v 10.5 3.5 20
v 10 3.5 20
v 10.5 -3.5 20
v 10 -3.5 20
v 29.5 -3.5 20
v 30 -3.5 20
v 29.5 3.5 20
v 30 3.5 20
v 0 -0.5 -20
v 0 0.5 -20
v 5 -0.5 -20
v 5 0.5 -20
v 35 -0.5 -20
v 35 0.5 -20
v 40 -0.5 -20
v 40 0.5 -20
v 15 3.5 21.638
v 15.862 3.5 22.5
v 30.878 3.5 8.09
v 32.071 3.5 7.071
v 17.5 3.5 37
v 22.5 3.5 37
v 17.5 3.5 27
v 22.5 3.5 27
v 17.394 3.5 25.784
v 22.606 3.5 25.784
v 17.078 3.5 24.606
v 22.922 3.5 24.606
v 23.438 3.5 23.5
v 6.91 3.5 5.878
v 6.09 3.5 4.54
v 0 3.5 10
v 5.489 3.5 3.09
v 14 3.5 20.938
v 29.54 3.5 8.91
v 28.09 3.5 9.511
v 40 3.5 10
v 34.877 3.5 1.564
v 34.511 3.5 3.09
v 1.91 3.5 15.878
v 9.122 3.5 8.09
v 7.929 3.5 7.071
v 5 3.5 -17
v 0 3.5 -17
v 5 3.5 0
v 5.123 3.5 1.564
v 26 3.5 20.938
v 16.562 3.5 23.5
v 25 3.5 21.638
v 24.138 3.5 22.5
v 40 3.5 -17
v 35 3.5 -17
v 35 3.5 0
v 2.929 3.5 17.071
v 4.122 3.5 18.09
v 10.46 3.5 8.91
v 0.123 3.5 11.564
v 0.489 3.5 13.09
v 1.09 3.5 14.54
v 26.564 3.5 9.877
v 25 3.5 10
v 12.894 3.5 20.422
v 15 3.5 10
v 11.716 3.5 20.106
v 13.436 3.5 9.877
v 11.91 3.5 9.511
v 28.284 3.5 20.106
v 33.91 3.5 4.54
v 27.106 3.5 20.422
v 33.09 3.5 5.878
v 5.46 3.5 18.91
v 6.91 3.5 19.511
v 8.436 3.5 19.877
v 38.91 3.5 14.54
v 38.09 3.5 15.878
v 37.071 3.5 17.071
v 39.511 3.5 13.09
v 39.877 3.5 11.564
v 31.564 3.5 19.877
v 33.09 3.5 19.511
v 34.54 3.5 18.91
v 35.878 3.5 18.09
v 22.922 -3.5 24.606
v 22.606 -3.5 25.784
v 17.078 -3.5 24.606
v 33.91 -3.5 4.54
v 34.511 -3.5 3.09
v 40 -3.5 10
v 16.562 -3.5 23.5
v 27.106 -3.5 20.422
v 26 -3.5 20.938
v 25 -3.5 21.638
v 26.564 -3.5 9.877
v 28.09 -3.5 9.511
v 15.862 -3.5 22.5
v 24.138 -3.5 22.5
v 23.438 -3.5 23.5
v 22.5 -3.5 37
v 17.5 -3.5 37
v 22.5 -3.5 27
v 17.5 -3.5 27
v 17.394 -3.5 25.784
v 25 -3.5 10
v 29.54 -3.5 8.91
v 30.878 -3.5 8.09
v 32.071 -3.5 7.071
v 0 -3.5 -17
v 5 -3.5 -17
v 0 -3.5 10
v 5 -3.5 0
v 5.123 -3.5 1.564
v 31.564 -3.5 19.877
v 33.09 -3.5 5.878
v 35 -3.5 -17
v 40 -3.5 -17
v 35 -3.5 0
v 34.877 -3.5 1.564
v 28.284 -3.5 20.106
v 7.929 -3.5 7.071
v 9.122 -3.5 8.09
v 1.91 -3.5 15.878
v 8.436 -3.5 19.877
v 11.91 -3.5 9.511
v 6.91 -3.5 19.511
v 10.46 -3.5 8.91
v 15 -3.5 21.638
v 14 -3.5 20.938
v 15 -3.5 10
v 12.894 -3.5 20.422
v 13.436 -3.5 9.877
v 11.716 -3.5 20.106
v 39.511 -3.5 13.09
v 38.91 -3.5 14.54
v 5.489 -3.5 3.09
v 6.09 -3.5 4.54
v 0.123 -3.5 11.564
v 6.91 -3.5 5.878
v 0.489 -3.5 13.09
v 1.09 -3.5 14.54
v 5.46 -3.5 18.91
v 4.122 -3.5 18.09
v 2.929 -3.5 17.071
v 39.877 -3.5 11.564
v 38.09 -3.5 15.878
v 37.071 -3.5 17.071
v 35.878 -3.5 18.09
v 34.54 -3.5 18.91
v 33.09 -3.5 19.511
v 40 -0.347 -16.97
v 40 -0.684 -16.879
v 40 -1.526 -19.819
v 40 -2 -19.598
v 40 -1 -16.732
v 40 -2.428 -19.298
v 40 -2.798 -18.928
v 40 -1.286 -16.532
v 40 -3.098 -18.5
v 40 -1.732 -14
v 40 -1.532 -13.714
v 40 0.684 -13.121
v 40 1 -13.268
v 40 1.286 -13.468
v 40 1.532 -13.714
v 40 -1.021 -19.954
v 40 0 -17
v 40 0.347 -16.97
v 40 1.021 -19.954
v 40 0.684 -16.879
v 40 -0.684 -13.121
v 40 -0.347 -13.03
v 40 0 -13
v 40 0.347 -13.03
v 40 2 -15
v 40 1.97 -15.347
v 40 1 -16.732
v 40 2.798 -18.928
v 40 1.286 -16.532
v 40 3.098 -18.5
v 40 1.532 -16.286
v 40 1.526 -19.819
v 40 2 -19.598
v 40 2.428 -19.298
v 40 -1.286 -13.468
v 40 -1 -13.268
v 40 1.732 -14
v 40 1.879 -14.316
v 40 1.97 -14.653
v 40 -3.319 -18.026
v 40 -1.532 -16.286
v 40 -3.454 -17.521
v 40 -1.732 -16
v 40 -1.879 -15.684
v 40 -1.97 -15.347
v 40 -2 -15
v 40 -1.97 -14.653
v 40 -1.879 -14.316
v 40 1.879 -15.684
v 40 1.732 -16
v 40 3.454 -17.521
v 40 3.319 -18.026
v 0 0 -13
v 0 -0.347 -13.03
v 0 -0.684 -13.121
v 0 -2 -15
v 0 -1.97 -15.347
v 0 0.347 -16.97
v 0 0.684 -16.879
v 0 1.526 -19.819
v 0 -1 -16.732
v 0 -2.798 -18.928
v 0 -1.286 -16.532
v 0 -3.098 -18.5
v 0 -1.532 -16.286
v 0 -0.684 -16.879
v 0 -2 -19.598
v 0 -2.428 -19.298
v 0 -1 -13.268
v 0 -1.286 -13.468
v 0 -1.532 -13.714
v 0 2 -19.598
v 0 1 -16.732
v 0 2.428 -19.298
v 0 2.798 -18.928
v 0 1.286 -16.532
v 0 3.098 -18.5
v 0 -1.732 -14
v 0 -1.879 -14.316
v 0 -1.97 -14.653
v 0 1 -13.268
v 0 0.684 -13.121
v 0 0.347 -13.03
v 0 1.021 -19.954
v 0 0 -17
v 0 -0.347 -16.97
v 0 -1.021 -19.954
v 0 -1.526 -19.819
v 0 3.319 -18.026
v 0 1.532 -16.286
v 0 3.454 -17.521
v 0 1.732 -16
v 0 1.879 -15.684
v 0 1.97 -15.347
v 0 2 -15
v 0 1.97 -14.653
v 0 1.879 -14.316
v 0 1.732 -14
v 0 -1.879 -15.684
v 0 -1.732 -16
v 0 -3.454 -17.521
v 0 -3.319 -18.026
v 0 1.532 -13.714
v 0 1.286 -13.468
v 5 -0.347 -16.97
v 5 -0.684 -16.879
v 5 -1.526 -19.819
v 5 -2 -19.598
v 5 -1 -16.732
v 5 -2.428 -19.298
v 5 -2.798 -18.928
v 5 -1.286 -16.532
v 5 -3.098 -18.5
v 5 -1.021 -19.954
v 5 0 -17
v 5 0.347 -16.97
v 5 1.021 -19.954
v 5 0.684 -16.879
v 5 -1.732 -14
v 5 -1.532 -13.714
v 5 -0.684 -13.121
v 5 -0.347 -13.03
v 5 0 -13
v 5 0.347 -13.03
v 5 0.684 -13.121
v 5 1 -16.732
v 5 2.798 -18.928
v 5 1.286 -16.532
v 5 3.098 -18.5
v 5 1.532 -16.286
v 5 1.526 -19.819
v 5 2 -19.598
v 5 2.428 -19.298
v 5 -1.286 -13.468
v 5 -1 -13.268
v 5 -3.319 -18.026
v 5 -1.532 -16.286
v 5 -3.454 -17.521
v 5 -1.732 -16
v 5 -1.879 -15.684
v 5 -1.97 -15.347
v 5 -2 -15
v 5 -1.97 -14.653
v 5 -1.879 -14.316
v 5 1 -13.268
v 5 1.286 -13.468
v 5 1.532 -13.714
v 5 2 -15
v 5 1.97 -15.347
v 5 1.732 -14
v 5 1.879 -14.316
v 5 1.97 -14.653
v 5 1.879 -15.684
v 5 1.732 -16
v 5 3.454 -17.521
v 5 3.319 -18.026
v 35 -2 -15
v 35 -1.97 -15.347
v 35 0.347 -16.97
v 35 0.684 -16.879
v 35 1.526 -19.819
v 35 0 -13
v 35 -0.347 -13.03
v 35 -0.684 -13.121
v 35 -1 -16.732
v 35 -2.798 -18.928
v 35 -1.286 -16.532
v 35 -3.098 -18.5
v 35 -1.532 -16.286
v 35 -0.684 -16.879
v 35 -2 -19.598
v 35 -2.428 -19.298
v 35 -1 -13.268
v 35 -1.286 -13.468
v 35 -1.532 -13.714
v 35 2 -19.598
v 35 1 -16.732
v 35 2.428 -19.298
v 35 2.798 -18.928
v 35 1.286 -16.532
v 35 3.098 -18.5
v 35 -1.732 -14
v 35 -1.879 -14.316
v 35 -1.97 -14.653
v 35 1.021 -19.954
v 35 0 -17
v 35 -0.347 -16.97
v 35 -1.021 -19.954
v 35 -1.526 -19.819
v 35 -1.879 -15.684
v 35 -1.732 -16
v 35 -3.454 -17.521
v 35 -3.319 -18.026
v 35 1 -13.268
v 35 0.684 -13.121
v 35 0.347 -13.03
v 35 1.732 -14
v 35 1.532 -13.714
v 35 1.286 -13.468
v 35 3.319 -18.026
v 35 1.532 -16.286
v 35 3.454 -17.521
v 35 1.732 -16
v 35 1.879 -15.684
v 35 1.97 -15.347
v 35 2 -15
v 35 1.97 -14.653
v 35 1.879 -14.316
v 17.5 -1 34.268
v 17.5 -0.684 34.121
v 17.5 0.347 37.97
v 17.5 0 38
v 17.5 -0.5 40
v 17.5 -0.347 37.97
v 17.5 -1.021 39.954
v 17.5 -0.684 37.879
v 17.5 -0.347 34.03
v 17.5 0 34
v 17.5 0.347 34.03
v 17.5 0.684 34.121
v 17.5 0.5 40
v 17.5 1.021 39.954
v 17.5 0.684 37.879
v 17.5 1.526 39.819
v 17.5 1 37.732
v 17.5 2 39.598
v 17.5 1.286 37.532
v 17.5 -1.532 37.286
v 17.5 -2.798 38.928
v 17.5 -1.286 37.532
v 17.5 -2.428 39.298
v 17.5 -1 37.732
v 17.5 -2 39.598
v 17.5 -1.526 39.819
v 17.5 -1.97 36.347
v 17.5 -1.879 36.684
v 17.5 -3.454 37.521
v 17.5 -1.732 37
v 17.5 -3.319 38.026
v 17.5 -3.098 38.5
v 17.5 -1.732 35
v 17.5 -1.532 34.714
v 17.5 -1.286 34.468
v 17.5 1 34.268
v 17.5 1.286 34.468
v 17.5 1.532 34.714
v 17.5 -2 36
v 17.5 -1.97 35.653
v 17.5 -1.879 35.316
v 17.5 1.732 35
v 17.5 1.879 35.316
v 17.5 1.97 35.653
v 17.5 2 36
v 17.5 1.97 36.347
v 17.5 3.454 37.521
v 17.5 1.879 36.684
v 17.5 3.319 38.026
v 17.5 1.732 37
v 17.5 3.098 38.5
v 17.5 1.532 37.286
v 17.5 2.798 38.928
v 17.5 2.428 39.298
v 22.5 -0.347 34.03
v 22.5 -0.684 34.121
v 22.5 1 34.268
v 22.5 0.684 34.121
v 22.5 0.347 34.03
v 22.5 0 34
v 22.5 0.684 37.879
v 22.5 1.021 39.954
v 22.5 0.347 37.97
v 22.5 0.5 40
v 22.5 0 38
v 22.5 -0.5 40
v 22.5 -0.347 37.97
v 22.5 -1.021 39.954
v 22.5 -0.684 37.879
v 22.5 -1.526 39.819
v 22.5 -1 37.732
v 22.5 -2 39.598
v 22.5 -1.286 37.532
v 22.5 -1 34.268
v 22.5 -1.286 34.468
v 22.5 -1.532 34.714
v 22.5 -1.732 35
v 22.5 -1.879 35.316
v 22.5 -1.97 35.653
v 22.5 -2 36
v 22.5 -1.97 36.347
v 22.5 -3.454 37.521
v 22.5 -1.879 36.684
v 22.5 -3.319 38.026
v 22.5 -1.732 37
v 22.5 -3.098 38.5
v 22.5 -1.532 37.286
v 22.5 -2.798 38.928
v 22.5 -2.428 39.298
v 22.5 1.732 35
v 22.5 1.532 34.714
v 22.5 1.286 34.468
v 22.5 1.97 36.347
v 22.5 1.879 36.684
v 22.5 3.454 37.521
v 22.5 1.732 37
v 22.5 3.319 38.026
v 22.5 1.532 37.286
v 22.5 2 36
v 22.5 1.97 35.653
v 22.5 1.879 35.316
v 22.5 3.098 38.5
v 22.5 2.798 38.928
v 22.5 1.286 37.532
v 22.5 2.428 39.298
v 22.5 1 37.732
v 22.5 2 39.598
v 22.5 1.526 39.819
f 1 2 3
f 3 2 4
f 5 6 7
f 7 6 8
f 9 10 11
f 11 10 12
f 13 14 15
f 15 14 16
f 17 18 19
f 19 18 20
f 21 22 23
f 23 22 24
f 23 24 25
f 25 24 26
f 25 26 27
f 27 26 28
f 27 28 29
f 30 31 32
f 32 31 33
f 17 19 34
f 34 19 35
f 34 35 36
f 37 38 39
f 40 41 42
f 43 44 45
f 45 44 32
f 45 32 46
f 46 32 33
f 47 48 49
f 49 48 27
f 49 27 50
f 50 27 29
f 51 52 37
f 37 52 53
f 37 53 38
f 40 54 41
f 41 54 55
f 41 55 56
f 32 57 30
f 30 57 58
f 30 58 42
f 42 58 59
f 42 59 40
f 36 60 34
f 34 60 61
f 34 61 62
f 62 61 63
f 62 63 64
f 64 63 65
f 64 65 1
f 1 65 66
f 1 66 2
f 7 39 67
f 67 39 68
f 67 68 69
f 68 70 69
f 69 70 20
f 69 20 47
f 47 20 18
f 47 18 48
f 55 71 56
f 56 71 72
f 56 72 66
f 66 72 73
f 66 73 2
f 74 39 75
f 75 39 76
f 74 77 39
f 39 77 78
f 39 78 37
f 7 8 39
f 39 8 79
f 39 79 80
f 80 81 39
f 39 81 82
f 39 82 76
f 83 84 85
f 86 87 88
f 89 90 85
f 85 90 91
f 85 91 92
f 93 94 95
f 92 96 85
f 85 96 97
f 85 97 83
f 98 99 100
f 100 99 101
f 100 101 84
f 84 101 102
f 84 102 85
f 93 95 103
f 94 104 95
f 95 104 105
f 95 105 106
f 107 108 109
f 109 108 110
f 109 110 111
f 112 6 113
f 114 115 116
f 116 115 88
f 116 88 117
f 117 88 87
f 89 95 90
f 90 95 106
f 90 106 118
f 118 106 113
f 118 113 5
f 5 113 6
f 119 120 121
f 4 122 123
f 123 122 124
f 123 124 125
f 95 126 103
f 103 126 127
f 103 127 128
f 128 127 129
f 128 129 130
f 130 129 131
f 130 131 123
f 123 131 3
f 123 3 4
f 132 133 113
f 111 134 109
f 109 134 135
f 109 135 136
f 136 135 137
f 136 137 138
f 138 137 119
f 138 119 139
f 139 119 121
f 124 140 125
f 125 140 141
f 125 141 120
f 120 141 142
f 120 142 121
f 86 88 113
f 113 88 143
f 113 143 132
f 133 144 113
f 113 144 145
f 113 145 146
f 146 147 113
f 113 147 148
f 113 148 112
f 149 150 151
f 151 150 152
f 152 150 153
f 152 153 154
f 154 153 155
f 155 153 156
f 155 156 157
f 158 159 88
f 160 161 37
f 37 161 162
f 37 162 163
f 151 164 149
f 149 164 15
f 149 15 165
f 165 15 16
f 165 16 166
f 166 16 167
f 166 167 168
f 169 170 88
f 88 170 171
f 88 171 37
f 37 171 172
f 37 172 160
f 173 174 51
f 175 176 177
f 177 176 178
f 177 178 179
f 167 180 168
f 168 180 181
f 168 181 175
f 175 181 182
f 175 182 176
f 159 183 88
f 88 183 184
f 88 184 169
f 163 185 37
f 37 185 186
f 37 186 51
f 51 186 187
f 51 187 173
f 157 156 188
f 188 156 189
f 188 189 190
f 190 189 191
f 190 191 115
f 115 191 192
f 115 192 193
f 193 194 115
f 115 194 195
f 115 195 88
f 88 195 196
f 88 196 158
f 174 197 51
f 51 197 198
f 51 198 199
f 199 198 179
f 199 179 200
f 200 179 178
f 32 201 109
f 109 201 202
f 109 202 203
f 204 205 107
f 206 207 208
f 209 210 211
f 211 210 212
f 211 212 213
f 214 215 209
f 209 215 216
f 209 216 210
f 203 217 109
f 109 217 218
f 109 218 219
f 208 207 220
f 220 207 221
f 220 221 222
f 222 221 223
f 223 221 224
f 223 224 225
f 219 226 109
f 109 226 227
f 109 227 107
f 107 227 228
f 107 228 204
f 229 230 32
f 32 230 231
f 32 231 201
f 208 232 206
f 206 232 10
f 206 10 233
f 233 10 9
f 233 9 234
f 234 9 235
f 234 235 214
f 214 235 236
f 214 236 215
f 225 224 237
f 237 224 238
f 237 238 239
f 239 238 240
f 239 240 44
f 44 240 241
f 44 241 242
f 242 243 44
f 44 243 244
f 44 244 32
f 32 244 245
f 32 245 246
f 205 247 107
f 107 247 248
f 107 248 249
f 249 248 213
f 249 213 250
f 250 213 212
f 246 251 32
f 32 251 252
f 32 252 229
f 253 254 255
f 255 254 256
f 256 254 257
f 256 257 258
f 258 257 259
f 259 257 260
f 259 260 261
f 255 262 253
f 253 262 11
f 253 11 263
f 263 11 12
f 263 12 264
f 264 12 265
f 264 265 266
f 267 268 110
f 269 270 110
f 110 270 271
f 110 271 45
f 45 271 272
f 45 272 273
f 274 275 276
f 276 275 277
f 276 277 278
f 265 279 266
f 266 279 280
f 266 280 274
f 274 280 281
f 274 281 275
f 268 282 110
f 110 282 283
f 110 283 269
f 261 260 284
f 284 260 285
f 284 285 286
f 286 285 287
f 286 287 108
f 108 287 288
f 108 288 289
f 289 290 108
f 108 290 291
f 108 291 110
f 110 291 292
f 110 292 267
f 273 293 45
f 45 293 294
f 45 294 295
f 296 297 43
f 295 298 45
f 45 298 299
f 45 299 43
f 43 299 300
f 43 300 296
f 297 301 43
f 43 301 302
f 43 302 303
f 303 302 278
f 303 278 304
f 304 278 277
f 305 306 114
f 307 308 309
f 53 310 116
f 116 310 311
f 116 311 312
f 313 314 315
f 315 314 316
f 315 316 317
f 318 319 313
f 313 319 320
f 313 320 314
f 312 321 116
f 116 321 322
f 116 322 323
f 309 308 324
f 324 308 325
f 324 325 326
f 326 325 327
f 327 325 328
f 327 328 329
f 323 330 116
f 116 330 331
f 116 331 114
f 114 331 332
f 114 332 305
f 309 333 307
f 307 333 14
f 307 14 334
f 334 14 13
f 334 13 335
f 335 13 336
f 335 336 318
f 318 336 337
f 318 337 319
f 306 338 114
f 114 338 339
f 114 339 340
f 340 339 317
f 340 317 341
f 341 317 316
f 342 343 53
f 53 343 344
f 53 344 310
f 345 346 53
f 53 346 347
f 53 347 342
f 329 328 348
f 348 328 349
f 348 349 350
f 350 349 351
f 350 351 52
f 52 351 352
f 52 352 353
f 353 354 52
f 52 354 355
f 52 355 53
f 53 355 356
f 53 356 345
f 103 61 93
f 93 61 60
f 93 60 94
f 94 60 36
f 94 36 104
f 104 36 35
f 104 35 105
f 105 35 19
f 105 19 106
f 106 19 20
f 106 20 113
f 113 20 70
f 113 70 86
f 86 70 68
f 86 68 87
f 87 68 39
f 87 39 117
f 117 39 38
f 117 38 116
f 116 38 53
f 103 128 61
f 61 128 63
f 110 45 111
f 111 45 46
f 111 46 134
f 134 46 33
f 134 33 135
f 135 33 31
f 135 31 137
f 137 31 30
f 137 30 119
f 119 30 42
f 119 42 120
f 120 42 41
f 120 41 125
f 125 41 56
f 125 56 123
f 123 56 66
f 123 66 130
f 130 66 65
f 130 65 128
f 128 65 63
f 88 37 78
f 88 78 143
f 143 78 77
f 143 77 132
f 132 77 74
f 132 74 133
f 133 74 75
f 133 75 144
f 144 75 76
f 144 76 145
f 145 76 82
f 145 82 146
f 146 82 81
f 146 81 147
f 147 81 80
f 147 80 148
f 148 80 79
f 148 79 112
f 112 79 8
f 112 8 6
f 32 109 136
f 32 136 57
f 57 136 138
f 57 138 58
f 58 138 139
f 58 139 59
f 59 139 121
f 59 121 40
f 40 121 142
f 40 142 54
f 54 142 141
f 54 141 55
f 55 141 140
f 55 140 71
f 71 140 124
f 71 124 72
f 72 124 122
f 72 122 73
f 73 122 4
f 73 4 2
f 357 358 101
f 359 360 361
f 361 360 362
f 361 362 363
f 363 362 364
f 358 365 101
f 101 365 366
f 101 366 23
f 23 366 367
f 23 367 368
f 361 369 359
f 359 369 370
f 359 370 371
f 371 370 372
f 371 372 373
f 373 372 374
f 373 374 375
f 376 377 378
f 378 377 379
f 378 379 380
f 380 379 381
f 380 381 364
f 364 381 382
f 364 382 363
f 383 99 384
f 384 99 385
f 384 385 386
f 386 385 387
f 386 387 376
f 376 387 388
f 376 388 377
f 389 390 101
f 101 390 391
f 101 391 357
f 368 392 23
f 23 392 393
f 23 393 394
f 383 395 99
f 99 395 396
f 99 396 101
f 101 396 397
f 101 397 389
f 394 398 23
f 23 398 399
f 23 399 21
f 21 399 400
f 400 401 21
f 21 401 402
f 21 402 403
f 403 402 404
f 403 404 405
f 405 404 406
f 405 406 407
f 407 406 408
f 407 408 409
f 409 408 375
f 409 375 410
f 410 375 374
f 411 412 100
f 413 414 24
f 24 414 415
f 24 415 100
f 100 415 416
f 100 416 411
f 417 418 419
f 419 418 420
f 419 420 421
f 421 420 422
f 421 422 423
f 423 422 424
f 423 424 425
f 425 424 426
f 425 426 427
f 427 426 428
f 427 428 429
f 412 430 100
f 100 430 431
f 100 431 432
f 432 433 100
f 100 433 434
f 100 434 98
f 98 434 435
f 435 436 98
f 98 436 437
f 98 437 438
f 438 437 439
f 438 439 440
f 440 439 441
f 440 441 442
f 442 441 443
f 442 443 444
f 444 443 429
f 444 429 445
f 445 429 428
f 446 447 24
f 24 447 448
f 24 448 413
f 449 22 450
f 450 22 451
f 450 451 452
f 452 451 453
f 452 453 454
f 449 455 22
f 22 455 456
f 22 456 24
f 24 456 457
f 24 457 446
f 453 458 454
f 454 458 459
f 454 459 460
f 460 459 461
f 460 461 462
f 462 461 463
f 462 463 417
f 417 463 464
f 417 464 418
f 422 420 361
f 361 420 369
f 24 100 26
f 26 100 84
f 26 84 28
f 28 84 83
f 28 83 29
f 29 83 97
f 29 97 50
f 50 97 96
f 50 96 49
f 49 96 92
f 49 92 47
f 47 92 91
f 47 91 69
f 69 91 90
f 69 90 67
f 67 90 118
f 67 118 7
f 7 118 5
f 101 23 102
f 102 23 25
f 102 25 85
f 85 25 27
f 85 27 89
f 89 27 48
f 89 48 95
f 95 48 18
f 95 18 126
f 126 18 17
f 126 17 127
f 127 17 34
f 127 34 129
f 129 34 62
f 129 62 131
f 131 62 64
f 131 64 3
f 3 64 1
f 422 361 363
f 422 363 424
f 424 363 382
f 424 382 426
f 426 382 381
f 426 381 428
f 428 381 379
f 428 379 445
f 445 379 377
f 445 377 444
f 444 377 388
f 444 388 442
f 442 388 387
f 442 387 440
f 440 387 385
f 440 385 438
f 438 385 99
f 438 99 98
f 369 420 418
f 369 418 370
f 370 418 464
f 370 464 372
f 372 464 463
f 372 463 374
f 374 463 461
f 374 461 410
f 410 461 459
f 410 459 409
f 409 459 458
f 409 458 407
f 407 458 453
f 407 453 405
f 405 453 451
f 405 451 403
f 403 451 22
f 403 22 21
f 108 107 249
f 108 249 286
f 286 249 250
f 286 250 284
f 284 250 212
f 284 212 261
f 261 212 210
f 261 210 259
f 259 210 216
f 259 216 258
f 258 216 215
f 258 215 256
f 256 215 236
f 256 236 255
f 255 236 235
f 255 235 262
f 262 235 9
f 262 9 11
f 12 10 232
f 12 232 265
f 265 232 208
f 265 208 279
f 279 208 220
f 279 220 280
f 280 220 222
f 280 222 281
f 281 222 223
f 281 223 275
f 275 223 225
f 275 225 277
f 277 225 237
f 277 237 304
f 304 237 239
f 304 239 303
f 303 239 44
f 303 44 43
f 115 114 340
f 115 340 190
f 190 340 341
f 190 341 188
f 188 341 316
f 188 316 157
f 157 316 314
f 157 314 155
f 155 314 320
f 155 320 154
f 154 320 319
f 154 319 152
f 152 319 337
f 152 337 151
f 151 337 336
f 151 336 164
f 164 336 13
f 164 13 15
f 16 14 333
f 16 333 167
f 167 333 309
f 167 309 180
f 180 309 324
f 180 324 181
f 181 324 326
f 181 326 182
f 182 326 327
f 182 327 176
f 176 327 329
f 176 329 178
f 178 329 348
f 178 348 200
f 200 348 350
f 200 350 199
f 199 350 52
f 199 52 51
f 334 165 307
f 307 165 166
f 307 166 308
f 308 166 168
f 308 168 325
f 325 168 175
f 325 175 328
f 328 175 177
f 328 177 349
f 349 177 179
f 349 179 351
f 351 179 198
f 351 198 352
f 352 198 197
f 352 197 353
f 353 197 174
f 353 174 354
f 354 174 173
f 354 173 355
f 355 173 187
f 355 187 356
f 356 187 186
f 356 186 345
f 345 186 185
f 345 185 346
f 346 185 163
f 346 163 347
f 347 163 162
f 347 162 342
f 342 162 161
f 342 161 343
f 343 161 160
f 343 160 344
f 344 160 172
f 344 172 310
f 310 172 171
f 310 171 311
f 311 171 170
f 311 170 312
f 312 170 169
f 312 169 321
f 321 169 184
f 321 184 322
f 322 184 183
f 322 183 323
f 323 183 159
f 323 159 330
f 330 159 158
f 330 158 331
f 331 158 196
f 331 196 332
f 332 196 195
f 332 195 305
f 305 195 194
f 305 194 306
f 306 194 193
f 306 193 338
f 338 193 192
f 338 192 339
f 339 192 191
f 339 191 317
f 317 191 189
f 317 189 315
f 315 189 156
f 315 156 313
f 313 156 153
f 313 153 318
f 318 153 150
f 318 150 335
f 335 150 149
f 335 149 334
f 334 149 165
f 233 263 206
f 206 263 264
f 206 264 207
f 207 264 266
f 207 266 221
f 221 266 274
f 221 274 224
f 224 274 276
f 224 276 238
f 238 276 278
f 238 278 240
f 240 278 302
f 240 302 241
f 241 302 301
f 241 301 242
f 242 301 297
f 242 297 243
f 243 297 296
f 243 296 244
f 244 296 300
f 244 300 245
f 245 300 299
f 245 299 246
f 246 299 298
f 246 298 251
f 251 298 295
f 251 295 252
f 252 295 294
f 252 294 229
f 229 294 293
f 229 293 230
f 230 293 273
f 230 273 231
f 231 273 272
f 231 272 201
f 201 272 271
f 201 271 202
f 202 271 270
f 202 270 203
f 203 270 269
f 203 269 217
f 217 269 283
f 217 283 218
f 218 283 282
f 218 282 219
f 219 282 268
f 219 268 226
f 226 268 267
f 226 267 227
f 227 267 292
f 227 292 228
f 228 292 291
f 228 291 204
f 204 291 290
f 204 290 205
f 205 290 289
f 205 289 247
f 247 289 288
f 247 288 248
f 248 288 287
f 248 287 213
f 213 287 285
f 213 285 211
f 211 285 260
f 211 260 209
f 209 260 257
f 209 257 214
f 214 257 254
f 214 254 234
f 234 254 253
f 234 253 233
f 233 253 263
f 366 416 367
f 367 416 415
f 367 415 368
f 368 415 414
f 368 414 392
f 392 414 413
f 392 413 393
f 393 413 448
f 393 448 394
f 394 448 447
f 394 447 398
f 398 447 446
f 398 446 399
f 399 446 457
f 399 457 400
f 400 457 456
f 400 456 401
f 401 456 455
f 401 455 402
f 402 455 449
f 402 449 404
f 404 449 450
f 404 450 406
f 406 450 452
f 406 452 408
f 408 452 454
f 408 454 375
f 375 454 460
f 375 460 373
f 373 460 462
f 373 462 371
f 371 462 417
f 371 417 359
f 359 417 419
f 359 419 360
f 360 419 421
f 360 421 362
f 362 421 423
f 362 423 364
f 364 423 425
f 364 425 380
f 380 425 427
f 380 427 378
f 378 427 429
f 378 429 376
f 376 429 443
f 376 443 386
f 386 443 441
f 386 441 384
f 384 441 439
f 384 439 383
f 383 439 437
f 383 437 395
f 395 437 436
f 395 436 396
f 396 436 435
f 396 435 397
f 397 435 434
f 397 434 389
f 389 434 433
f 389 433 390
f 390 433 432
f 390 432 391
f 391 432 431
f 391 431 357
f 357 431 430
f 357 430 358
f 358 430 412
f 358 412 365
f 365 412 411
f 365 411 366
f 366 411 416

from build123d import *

# Parameters (mm, degrees)
SKETCH1_W           = 40
SKETCH1_H           = 7
BOSS_EXTRUDE1_DEPTH = 40
CUT_EXTRUDE1_DEPTH  = 8
FILLET1_R           = 10
SKETCH5_W           = 5
SKETCH5_H           = 7
BOSS_EXTRUDE2_DEPTH = 20
FILLET2_R           = 7
FILLET3_R           = 3
SKETCH6_R           = 2
CUT_EXTRUDE2_DEPTH  = 41
SKETCH7_R           = 2
CUT_EXTRUDE3_DEPTH  = 23.5


with BuildPart() as part:
    # Sketch1 → Boss-Extrude1 (new body)
    with BuildSketch(Plane(origin=(0, 0, 0), x_dir=(0, 0, -1), z_dir=(1, 0, 0))):
        Rectangle(SKETCH1_W, SKETCH1_H)
    extrude(amount=BOSS_EXTRUDE1_DEPTH)

    # Sketch2 → Cut-Extrude1 (cut, through all)
    with BuildSketch(Plane(origin=(0, 3.5, 0), x_dir=(1, 0, 0), z_dir=(0, 1, 0))):
        with BuildLine():
            Line((5, 20), (35, 20))
            Line((35, 20), (35, 0))
            ThreePointArc((35, 0), (32.071067812, -7.071067812), (25, -10))
            Line((25, -10), (15, -10))
            ThreePointArc((15, -10), (7.928932188, -7.071067812), (5, 0))
            Line((5, 0), (5, 20))
        make_face()
    extrude(amount=-CUT_EXTRUDE1_DEPTH, mode=Mode.SUBTRACT)

    # Fillet1
    fillet1_edges = [part.edges().sort_by_distance(p)[0] for p in [
        (40, 0, 20),
        (0, 0, 20),
    ]]
    fillet(fillet1_edges, radius=FILLET1_R)

    # Sketch5 → Boss-Extrude2 (add)
    with BuildSketch(Plane.XY.offset(20)):
        with Locations((20, 0)):
            Rectangle(SKETCH5_W, SKETCH5_H)
    extrude(amount=BOSS_EXTRUDE2_DEPTH)

    # Fillet2
    fillet2_edges = [part.edges().sort_by_distance(p)[0] for p in [
        (17.5, 0, 20),
        (22.5, 0, 20),
    ]]
    fillet(fillet2_edges, radius=FILLET2_R)

    # Fillet3
    fillet3_edges = [part.edges().sort_by_distance(p)[0] for p in [
        (2.5, -3.5, -20),
        (2.5, 3.5, -20),
        (20, -3.5, 40),
        (20, 3.5, 40),
        (37.5, -3.5, -20),
        (37.5, 3.5, -20),
    ]]
    fillet(fillet3_edges, radius=FILLET3_R)

    # Sketch6 → Cut-Extrude2 (cut, through all)
    with BuildSketch(Plane(origin=(40, 0, 0), x_dir=(0, 0, -1), z_dir=(1, 0, 0))):
        with Locations((15, 0)):
            Circle(SKETCH6_R)
    extrude(amount=-CUT_EXTRUDE2_DEPTH, mode=Mode.SUBTRACT)

    # Sketch7 → Cut-Extrude3 (cut, through all)
    with BuildSketch(Plane(origin=(22.5, 0, 0), x_dir=(0, 0, -1), z_dir=(1, 0, 0))):
        with Locations((-36, 0)):
            Circle(SKETCH7_R)
    extrude(amount=-CUT_EXTRUDE3_DEPTH, mode=Mode.SUBTRACT)


solid = part.part
